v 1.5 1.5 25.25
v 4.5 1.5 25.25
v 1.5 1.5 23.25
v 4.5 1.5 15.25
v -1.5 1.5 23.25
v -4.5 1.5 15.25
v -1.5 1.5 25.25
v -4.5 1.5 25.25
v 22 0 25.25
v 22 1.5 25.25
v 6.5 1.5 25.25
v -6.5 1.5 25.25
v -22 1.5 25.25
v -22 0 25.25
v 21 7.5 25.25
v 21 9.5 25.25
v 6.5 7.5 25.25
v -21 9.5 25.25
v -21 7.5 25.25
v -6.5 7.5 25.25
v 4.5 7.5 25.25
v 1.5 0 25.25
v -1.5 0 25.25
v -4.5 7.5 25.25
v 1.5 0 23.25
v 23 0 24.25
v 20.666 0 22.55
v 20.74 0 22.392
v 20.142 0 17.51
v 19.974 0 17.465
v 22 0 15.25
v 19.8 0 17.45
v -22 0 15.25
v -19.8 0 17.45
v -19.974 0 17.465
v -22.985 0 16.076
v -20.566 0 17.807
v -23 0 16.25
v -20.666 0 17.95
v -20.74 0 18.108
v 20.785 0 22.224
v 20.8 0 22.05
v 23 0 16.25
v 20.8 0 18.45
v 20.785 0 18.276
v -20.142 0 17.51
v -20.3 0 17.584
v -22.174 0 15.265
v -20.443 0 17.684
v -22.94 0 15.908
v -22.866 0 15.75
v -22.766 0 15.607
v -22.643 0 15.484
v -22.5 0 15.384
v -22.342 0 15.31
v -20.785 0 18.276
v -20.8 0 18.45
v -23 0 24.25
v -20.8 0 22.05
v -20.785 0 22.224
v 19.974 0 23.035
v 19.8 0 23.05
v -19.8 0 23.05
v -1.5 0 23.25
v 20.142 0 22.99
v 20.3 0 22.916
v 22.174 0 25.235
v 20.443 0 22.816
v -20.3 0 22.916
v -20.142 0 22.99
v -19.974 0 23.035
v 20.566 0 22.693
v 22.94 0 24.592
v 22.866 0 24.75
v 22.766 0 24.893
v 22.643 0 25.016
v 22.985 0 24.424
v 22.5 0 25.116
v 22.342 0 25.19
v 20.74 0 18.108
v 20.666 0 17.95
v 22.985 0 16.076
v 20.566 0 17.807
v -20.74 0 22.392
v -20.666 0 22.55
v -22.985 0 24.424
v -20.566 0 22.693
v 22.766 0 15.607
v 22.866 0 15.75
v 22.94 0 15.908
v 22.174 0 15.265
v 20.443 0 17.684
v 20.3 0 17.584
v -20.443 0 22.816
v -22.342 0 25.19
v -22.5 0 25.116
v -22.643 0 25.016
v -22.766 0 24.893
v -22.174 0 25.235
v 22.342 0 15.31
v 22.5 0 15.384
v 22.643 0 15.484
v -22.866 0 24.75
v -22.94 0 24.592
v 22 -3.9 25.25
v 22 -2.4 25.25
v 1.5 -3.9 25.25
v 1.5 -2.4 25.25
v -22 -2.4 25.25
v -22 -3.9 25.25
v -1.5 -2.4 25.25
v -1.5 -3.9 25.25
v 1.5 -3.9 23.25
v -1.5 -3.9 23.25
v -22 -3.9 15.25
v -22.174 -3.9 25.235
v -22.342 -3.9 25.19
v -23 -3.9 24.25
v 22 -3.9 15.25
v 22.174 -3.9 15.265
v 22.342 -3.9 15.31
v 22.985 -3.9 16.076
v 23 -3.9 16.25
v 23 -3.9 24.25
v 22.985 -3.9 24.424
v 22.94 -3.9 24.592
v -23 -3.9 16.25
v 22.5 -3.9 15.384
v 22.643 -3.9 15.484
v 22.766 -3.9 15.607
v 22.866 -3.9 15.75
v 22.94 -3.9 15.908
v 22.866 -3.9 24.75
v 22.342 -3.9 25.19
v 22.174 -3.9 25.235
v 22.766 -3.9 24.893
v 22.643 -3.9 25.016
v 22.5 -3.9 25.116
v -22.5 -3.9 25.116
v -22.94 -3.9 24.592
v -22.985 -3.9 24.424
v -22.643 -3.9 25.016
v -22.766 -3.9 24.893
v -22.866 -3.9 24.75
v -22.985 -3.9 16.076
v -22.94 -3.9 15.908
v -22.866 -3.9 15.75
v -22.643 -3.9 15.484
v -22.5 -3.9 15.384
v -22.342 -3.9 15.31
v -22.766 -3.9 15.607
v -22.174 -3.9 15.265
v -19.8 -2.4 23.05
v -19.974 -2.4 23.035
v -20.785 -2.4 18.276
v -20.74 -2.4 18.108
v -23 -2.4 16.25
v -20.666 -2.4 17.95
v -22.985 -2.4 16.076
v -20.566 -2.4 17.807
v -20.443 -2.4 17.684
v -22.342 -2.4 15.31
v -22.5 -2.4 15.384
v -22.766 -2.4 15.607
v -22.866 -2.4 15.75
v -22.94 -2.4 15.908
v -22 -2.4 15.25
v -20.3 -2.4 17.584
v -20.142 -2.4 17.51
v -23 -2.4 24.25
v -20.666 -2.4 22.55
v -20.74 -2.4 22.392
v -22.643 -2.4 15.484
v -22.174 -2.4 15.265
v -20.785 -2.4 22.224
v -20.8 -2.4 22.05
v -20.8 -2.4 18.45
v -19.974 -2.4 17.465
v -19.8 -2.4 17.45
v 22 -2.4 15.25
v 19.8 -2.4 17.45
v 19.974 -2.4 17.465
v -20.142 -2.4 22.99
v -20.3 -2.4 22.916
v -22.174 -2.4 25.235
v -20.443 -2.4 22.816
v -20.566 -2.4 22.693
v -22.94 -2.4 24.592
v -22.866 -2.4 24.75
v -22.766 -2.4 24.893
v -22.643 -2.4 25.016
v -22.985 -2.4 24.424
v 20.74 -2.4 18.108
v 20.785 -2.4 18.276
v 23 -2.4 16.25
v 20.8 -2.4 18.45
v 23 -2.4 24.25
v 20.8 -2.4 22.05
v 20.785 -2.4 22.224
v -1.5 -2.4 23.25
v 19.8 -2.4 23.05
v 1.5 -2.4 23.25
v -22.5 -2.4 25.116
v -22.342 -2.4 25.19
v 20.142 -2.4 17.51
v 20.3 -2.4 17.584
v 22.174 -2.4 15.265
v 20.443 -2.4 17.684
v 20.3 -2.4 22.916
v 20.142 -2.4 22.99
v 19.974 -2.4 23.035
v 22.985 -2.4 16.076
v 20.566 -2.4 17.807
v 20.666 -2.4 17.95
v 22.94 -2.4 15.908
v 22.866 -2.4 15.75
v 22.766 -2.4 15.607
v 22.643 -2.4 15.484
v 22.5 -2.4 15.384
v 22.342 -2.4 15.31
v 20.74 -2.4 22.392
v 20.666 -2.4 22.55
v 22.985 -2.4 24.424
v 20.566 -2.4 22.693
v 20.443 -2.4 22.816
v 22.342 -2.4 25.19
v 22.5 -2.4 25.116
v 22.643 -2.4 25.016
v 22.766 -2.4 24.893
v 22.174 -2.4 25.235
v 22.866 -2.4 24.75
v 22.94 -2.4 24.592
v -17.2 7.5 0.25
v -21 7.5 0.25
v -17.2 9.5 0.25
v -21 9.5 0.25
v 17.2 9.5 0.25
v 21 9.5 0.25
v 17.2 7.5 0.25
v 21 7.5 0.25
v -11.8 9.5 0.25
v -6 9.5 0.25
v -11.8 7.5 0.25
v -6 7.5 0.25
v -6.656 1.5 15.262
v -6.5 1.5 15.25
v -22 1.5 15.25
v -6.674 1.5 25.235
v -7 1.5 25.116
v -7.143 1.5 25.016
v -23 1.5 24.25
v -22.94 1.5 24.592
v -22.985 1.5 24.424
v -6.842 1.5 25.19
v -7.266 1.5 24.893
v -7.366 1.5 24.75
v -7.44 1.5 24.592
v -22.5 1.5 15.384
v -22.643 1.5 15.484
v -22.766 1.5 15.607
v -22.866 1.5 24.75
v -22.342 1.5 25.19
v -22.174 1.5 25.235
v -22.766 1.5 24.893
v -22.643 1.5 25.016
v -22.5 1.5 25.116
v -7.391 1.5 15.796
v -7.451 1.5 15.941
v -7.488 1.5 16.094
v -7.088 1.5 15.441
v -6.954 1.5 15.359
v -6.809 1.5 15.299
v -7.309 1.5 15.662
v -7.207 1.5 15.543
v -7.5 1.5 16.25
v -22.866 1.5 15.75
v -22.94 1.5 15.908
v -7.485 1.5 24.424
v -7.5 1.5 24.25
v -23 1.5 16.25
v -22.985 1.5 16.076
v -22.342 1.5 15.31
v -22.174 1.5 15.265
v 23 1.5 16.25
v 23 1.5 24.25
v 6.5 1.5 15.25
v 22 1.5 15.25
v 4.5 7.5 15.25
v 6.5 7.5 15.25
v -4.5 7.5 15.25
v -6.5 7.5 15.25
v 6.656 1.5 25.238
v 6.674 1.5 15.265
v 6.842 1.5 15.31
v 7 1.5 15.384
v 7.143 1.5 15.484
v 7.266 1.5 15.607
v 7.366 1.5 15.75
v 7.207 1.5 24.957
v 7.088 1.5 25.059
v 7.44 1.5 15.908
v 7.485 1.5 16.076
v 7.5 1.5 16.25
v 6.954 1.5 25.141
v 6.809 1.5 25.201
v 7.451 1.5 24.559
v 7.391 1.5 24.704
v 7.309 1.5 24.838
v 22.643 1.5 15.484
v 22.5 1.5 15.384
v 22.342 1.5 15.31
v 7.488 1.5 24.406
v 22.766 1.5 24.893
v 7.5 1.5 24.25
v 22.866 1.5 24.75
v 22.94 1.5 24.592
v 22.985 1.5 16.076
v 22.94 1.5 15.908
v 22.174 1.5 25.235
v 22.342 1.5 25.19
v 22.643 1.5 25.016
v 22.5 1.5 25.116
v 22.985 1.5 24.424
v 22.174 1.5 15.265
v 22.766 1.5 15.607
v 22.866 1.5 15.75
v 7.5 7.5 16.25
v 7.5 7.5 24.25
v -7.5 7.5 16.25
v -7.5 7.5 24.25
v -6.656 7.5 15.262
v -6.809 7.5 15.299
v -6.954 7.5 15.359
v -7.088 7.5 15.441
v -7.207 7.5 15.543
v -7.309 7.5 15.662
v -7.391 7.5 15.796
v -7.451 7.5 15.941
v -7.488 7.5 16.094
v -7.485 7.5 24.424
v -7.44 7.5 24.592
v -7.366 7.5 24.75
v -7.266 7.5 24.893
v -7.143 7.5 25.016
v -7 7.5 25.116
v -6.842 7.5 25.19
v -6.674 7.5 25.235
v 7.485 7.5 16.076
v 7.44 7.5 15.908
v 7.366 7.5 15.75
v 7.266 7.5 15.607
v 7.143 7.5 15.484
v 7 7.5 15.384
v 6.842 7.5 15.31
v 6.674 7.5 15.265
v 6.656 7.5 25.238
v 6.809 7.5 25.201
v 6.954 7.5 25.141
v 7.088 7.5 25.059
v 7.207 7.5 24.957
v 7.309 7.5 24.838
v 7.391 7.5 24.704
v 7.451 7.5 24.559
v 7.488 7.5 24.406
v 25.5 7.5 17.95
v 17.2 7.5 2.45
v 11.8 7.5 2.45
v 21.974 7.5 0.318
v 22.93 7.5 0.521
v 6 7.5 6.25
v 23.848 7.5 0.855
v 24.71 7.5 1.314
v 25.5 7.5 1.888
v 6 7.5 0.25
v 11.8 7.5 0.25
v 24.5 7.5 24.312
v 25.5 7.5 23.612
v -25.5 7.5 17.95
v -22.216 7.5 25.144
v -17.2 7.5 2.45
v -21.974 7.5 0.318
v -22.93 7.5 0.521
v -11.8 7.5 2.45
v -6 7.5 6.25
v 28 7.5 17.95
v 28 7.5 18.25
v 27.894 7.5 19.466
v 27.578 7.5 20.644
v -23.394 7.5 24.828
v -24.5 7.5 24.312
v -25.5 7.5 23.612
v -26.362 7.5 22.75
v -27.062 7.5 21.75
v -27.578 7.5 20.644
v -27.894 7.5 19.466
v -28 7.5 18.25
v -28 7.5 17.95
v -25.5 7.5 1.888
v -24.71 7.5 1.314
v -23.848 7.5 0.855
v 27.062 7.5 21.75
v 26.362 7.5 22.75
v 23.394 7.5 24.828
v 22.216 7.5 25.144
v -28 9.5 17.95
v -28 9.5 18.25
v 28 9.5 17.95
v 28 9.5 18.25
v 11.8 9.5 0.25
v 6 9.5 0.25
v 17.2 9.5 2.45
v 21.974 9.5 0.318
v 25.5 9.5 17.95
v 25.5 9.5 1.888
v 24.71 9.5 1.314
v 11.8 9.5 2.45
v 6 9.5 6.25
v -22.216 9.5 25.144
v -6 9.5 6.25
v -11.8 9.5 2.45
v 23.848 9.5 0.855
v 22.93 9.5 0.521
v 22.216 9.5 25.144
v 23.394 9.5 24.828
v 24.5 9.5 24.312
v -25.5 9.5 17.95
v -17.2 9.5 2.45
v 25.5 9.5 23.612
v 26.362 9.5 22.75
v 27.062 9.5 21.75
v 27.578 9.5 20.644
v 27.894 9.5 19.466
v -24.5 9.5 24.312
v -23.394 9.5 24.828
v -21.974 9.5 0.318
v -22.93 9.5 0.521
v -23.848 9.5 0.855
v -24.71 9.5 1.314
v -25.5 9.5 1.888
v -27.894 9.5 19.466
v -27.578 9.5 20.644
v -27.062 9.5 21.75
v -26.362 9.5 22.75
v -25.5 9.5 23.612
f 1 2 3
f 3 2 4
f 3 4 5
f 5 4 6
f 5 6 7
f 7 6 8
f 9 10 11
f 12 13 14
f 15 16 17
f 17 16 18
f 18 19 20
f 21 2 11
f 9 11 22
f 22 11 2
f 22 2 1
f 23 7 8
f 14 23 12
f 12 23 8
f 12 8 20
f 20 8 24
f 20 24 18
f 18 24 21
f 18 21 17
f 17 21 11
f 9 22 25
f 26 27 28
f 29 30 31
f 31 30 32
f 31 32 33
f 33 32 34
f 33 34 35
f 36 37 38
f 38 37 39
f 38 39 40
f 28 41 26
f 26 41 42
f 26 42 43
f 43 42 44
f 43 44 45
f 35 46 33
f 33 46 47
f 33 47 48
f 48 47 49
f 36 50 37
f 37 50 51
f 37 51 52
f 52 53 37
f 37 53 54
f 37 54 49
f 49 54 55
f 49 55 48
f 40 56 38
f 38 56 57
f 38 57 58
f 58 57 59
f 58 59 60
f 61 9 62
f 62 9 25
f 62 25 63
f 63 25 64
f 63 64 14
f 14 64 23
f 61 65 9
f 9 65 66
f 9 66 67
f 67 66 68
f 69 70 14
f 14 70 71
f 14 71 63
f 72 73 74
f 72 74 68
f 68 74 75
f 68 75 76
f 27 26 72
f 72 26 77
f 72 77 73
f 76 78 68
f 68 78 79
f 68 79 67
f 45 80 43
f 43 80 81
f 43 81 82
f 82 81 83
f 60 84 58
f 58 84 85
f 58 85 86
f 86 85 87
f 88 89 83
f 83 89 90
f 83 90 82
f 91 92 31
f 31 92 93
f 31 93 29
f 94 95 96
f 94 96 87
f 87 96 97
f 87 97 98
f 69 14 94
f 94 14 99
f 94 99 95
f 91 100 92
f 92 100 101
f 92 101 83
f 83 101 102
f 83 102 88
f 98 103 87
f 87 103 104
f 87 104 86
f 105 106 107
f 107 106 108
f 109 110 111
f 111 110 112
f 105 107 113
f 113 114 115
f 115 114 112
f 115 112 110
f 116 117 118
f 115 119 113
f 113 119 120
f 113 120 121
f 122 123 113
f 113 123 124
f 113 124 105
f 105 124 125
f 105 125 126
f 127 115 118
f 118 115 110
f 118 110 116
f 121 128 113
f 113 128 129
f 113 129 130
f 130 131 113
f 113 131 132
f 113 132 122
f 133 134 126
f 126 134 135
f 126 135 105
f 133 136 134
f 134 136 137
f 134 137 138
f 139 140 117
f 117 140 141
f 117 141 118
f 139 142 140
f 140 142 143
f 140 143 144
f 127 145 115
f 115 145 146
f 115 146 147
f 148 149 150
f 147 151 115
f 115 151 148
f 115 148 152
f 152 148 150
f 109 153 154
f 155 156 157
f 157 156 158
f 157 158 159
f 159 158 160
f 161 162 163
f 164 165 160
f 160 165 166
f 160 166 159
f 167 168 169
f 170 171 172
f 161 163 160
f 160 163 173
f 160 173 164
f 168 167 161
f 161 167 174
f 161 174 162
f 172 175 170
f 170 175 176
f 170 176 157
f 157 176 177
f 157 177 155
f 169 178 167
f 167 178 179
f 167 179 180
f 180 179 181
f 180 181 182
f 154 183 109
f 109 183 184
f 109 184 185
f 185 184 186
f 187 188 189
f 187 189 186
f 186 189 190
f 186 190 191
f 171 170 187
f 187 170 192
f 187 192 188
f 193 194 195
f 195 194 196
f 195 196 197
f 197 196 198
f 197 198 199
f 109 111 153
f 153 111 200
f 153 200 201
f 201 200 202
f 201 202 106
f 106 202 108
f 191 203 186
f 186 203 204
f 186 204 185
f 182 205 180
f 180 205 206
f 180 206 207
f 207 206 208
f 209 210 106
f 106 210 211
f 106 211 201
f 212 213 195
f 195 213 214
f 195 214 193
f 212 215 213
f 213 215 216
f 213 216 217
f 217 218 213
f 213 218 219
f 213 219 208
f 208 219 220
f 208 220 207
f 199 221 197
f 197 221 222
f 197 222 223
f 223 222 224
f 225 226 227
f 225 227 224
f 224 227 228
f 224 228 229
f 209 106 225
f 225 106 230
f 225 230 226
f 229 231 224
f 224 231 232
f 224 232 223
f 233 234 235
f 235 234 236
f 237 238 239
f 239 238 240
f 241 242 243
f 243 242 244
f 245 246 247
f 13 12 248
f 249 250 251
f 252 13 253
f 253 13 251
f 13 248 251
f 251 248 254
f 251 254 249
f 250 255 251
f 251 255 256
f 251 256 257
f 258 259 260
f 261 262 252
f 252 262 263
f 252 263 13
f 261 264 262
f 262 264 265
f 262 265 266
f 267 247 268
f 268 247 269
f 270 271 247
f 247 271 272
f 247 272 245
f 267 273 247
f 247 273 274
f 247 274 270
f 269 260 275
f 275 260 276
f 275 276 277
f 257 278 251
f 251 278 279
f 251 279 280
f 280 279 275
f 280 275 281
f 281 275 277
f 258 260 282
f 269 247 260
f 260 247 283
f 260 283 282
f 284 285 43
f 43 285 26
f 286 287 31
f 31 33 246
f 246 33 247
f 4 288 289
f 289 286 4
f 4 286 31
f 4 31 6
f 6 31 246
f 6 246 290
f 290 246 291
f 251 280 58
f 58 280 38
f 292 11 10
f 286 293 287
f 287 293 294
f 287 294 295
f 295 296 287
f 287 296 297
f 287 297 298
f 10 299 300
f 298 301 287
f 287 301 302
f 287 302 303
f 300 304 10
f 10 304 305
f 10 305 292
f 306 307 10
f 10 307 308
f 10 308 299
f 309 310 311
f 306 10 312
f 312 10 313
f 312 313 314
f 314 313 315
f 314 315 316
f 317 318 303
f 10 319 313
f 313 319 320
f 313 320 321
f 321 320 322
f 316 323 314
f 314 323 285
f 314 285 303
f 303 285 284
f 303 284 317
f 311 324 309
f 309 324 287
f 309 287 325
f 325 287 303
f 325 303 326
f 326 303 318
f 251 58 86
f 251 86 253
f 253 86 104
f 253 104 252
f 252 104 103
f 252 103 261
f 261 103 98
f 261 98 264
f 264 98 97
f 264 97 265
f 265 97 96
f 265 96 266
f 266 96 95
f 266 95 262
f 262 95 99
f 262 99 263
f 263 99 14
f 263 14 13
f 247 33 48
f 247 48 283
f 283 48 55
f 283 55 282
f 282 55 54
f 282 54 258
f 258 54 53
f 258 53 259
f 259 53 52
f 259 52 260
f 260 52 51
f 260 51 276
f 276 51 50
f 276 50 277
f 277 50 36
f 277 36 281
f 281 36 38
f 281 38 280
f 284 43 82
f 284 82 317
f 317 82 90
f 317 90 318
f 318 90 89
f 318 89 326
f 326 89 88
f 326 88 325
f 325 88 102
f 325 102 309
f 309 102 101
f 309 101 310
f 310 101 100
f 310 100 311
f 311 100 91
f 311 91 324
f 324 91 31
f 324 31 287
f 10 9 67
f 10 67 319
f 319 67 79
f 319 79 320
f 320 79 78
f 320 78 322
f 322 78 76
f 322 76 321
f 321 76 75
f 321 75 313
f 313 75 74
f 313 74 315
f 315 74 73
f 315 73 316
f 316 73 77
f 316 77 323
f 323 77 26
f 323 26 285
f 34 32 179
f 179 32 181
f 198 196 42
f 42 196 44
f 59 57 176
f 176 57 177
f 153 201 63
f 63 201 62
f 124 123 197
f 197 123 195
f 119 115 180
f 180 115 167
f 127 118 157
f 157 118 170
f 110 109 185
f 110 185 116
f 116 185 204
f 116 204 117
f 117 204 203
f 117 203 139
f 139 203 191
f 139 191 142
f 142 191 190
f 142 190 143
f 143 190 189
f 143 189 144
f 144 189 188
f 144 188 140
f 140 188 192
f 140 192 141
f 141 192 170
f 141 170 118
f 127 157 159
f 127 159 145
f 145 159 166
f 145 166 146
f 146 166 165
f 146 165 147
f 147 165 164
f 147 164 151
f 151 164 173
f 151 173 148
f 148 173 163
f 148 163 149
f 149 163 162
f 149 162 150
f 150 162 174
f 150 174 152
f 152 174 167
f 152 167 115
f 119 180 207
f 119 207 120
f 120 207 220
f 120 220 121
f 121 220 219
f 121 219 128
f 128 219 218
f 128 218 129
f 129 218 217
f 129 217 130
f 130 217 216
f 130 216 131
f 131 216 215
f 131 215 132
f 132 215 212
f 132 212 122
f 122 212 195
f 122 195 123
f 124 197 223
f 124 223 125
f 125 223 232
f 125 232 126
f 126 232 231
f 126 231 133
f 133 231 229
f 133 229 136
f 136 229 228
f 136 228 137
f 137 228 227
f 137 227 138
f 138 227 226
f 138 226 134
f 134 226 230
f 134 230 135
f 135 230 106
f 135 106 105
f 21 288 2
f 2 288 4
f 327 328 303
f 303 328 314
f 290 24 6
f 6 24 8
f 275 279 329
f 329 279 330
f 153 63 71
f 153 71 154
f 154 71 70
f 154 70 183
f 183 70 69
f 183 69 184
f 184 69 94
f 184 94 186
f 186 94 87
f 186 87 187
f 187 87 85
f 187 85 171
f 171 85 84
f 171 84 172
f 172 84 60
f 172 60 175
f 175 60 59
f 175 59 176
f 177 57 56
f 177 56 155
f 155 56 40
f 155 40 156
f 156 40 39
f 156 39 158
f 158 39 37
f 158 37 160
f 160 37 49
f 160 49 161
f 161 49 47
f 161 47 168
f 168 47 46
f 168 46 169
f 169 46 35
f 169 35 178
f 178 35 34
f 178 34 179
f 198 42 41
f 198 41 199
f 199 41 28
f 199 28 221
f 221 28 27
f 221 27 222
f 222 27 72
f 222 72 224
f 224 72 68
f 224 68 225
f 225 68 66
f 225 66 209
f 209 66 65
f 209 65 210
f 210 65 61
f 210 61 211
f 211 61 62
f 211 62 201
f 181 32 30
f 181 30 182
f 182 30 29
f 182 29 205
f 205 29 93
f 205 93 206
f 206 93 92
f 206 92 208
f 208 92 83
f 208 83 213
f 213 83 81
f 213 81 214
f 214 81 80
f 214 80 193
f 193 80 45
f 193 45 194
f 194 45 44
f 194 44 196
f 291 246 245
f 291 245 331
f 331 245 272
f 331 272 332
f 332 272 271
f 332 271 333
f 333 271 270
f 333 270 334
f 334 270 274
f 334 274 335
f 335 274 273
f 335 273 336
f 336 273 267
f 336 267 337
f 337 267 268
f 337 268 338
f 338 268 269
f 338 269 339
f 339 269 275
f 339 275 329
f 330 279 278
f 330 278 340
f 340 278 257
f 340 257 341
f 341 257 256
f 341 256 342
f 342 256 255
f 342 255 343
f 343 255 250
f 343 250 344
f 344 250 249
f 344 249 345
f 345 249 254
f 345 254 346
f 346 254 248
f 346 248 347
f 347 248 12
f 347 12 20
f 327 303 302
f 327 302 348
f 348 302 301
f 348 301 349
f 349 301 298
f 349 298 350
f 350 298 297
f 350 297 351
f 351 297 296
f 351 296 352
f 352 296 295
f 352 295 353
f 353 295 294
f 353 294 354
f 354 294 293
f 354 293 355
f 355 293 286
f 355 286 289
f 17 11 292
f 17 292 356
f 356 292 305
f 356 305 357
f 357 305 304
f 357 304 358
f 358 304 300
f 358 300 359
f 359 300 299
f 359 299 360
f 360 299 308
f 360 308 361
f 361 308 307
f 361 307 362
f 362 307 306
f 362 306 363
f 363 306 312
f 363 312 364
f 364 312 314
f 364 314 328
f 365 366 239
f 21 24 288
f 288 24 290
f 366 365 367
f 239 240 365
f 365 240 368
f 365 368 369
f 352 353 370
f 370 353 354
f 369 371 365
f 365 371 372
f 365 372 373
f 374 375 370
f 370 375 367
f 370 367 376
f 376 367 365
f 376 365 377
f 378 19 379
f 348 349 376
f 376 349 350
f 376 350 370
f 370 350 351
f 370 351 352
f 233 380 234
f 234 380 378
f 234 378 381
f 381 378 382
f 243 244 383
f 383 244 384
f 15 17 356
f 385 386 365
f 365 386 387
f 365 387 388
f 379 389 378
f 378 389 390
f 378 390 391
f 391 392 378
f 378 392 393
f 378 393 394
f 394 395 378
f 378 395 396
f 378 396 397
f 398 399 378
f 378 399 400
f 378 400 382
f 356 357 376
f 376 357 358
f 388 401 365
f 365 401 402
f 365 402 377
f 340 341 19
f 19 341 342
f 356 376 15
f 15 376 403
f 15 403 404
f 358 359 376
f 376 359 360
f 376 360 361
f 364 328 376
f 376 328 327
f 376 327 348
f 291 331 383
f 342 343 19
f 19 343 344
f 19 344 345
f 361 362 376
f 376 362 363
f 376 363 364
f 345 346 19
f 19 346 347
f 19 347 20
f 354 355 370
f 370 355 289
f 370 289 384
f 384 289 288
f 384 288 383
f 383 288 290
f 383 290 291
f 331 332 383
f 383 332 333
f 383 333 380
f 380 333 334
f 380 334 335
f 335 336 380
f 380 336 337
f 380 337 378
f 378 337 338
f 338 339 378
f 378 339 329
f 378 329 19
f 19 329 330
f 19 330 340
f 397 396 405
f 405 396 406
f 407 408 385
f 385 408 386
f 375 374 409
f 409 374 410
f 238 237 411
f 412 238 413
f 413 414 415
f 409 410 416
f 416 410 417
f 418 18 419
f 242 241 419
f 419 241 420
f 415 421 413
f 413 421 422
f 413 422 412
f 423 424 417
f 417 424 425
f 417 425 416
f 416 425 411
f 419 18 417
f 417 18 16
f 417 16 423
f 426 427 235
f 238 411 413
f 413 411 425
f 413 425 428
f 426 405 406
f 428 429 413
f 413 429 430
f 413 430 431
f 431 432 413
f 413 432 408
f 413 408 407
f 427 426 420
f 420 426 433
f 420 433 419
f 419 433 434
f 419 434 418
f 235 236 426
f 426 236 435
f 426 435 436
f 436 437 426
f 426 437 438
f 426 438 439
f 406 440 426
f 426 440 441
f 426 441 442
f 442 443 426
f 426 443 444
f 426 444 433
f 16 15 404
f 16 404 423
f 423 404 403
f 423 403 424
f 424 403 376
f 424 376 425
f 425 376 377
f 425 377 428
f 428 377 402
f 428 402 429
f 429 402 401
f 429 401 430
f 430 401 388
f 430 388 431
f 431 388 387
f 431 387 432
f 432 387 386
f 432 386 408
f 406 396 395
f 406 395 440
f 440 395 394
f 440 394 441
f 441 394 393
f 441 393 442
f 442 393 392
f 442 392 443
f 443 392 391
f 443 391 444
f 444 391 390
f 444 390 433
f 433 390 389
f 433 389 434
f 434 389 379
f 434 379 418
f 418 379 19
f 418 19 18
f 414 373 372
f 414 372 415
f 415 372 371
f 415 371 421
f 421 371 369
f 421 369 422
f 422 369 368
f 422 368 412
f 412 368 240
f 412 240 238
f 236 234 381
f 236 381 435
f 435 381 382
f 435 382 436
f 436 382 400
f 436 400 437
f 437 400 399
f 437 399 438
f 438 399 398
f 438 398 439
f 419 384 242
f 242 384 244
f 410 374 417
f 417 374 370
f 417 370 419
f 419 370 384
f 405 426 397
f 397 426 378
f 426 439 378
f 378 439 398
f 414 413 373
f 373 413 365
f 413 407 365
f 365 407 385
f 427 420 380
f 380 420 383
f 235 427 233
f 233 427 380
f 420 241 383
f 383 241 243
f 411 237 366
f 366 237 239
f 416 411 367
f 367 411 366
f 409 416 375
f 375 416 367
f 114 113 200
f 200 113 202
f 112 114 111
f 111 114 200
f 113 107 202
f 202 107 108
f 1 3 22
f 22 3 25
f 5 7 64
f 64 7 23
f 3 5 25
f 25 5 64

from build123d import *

# Parameters (mm, degrees)
SKETCH1_W           = 46
SKETCH1_H           = 10
BOSS_EXTRUDE1_DEPTH = 1.5
FILLET6_R           = 1
BOSS_EXTRUDE2_REACH = 36.377
SKETCH2_W           = 41.6
SKETCH2_H           = 5.6
SKETCH8_W           = 3
SKETCH8_H           = 10
BOSS_EXTRUDE7_DEPTH = 6
FILLET1_R           = 1
FILLET4_R           = 1
SKETCH4_W           = 56
SKETCH4_H           = 25
BOSS_EXTRUDE5_DEPTH = 2
FILLET7_R           = 7
SKETCH6_W           = 12
SKETCH6_H           = 6
CUT_EXTRUDE1_DEPTH  = 41.014028534
CUT_EXTRUDE2_REACH  = 42.014
SKETCH9_W           = 2.5
SKETCH9_H           = 25
CUT_EXTRUDE3_REACH  = 42.014
SKETCH10_W          = 5.4
SKETCH10_H          = 2.2
SKETCH_1_W          = 3
SKETCH_1_H          = 2
CUT_EXTRUDE_1_DEPTH = 39.542995207


with BuildPart() as part:
    # Sketch1 → Boss-Extrude1 (new body)
    with BuildSketch(Plane(origin=(0, 0, 0), x_dir=(1, 0, 0), z_dir=(0, 1, 0))):
        with Locations((0, -20.249999594)):
            Rectangle(SKETCH1_W, SKETCH1_H)
    extrude(amount=BOSS_EXTRUDE1_DEPTH)

    # Fillet6
    fillet6_edges = [part.edges().sort_by_distance(p)[0] for p in [
        (23, 0.75, 25.249999594),
        (-23, 0.75, 25.249999594),
        (-23, 0.75, 15.249999594),
        (23, 0.75, 15.249999594),
    ]]
    fillet(fillet6_edges, radius=FILLET6_R)


with BuildPart() as body_2:
    # Mirror2: mirrored copy
    add(part.part.mirror(Plane.ZX.offset(-1.2)))

    # Sketch2 → Boss-Extrude2 (add, up to next)
    with BuildSketch(Plane(origin=(0, 0, 0), x_dir=(1, 0, 0), z_dir=(0, 1, 0)), mode=Mode.PRIVATE) as boss_extrude2_sk1:
        with Locations((0, -20.249999594)):
            Rectangle(SKETCH2_W, SKETCH2_H)
    boss_extrude2_tool1 = extrude(boss_extrude2_sk1.sketch, amount=-BOSS_EXTRUDE2_REACH, mode=Mode.PRIVATE) - body_2.part

    add(part.part)  # Boss-Extrude2 merges part
    add(boss_extrude2_tool1.solids().sort_by_distance((0, 0, 20.25))[0])

    # Sketch8 → Boss-Extrude7 (add)
    with BuildSketch(Plane(origin=(0, 1.5, 0), x_dir=(1, 0, 0), z_dir=(0, 1, 0))):
        with Locations((6, -20.249999594)):
            Rectangle(SKETCH8_W, SKETCH8_H)
    extrude(amount=BOSS_EXTRUDE7_DEPTH)

    # Mirror4: body 2 across plane


with BuildPart() as body_2_1:
    add(body_2.part)
    add(body_2.part.mirror(Plane(origin=(0, 0, 0), x_dir=(0, 0, 1), z_dir=(1, 0, 0))))

    # Fillet1
    fillet1_edges = [body_2_1.edges().sort_by_distance(p)[0] for p in [
        (-20.8, -1.2, 17.449999594),
        (20.8, -1.2, 17.449999594),
        (-20.8, -1.2, 23.049999594),
        (20.8, -1.2, 23.049999594),
    ]]
    fillet(fillet1_edges, radius=FILLET1_R)

    # Fillet4
    fillet4_edges = [body_2_1.edges().sort_by_distance(p)[0] for p in [
        (-7.5, 4.5, 15.249999594),
        (7.5, 4.5, 25.249999594),
        (7.5, 4.5, 15.249999594),
        (-7.5, 4.5, 25.249999594),
    ]]
    fillet(fillet4_edges, radius=FILLET4_R)

    # Sketch4 → Boss-Extrude5 (add)
    with BuildSketch(Plane(origin=(0, 7.5, 0), x_dir=(1, 0, 0), z_dir=(0, 1, 0))):
        with Locations((0, -12.749999594)):
            Rectangle(SKETCH4_W, SKETCH4_H)
    extrude(amount=BOSS_EXTRUDE5_DEPTH)

    # Fillet7
    fillet7_edges = [body_2_1.edges().sort_by_distance(p)[0] for p in [
        (-28, 8.5, 0.249999594),
        (-28, 8.5, 25.249999594),
        (28, 8.5, 25.249999594),
        (28, 8.5, 0.249999594),
    ]]
    fillet(fillet7_edges, radius=FILLET7_R)

    # Sketch6 → Cut-Extrude1 (cut, through all)
    with BuildSketch(Plane(origin=(0, 9.5, 0), x_dir=(1, 0, 0), z_dir=(0, 1, 0))):
        with Locations((0, -3.249999594)):
            Rectangle(SKETCH6_W, SKETCH6_H)
    extrude(amount=-CUT_EXTRUDE1_DEPTH, mode=Mode.SUBTRACT)

    # Sketch9 → Cut-Extrude2 (cut, up to next)
    with BuildSketch(Plane(origin=(0, 9.5, 0), x_dir=(1, 0, 0), z_dir=(0, 1, 0)), mode=Mode.PRIVATE) as cut_extrude2_sk1:
        with Locations((-26.75, -5.449999594)):
            Rectangle(SKETCH9_W, SKETCH9_H)
    cut_extrude2_tool1 = extrude(cut_extrude2_sk1.sketch, amount=-CUT_EXTRUDE2_REACH, mode=Mode.PRIVATE) & body_2_1.part
    # Sketch9 → Cut-Extrude2 (cut, up to next)
    with BuildSketch(Plane(origin=(0, 9.5, 0), x_dir=(1, 0, 0), z_dir=(0, 1, 0)), mode=Mode.PRIVATE) as cut_extrude2_sk2:
        with Locations((26.75, -5.449999594)):
            Rectangle(SKETCH9_W, SKETCH9_H)
    cut_extrude2_tool2 = extrude(cut_extrude2_sk2.sketch, amount=-CUT_EXTRUDE2_REACH, mode=Mode.PRIVATE) & body_2_1.part
    add(cut_extrude2_tool1.solids().sort_by_distance((-26.75, 9.5, 5.45))[0], mode=Mode.SUBTRACT)
    add(cut_extrude2_tool2.solids().sort_by_distance((26.75, 9.5, 5.45))[0], mode=Mode.SUBTRACT)

    # Sketch10 → Cut-Extrude3 (cut, up to next)
    with BuildSketch(Plane(origin=(0, 9.5, 0), x_dir=(1, 0, 0), z_dir=(0, 1, 0)), mode=Mode.PRIVATE) as cut_extrude3_sk1:
        with Locations((14.5, -1.349999594)):
            Rectangle(SKETCH10_W, SKETCH10_H)
    cut_extrude3_tool1 = extrude(cut_extrude3_sk1.sketch, amount=-CUT_EXTRUDE3_REACH, mode=Mode.PRIVATE) & body_2_1.part
    # Sketch10 → Cut-Extrude3 (cut, up to next)
    with BuildSketch(Plane(origin=(0, 9.5, 0), x_dir=(1, 0, 0), z_dir=(0, 1, 0)), mode=Mode.PRIVATE) as cut_extrude3_sk2:
        with Locations((-14.5, -1.349999594)):
            Rectangle(SKETCH10_W, SKETCH10_H)
    cut_extrude3_tool2 = extrude(cut_extrude3_sk2.sketch, amount=-CUT_EXTRUDE3_REACH, mode=Mode.PRIVATE) & body_2_1.part
    add(cut_extrude3_tool1.solids().sort_by_distance((14.5, 9.5, 1.35))[0], mode=Mode.SUBTRACT)
    add(cut_extrude3_tool2.solids().sort_by_distance((-14.5, 9.5, 1.35))[0], mode=Mode.SUBTRACT)

    # Эскиз1 → Вырез-Вытянуть1 (cut, through all)
    with BuildSketch(Plane.XZ.offset(-1.5)):
        with Locations((0, 24.249999594)):
            Rectangle(SKETCH_1_W, SKETCH_1_H)
    extrude(amount=CUT_EXTRUDE_1_DEPTH, mode=Mode.SUBTRACT)


solid = body_2_1.part
